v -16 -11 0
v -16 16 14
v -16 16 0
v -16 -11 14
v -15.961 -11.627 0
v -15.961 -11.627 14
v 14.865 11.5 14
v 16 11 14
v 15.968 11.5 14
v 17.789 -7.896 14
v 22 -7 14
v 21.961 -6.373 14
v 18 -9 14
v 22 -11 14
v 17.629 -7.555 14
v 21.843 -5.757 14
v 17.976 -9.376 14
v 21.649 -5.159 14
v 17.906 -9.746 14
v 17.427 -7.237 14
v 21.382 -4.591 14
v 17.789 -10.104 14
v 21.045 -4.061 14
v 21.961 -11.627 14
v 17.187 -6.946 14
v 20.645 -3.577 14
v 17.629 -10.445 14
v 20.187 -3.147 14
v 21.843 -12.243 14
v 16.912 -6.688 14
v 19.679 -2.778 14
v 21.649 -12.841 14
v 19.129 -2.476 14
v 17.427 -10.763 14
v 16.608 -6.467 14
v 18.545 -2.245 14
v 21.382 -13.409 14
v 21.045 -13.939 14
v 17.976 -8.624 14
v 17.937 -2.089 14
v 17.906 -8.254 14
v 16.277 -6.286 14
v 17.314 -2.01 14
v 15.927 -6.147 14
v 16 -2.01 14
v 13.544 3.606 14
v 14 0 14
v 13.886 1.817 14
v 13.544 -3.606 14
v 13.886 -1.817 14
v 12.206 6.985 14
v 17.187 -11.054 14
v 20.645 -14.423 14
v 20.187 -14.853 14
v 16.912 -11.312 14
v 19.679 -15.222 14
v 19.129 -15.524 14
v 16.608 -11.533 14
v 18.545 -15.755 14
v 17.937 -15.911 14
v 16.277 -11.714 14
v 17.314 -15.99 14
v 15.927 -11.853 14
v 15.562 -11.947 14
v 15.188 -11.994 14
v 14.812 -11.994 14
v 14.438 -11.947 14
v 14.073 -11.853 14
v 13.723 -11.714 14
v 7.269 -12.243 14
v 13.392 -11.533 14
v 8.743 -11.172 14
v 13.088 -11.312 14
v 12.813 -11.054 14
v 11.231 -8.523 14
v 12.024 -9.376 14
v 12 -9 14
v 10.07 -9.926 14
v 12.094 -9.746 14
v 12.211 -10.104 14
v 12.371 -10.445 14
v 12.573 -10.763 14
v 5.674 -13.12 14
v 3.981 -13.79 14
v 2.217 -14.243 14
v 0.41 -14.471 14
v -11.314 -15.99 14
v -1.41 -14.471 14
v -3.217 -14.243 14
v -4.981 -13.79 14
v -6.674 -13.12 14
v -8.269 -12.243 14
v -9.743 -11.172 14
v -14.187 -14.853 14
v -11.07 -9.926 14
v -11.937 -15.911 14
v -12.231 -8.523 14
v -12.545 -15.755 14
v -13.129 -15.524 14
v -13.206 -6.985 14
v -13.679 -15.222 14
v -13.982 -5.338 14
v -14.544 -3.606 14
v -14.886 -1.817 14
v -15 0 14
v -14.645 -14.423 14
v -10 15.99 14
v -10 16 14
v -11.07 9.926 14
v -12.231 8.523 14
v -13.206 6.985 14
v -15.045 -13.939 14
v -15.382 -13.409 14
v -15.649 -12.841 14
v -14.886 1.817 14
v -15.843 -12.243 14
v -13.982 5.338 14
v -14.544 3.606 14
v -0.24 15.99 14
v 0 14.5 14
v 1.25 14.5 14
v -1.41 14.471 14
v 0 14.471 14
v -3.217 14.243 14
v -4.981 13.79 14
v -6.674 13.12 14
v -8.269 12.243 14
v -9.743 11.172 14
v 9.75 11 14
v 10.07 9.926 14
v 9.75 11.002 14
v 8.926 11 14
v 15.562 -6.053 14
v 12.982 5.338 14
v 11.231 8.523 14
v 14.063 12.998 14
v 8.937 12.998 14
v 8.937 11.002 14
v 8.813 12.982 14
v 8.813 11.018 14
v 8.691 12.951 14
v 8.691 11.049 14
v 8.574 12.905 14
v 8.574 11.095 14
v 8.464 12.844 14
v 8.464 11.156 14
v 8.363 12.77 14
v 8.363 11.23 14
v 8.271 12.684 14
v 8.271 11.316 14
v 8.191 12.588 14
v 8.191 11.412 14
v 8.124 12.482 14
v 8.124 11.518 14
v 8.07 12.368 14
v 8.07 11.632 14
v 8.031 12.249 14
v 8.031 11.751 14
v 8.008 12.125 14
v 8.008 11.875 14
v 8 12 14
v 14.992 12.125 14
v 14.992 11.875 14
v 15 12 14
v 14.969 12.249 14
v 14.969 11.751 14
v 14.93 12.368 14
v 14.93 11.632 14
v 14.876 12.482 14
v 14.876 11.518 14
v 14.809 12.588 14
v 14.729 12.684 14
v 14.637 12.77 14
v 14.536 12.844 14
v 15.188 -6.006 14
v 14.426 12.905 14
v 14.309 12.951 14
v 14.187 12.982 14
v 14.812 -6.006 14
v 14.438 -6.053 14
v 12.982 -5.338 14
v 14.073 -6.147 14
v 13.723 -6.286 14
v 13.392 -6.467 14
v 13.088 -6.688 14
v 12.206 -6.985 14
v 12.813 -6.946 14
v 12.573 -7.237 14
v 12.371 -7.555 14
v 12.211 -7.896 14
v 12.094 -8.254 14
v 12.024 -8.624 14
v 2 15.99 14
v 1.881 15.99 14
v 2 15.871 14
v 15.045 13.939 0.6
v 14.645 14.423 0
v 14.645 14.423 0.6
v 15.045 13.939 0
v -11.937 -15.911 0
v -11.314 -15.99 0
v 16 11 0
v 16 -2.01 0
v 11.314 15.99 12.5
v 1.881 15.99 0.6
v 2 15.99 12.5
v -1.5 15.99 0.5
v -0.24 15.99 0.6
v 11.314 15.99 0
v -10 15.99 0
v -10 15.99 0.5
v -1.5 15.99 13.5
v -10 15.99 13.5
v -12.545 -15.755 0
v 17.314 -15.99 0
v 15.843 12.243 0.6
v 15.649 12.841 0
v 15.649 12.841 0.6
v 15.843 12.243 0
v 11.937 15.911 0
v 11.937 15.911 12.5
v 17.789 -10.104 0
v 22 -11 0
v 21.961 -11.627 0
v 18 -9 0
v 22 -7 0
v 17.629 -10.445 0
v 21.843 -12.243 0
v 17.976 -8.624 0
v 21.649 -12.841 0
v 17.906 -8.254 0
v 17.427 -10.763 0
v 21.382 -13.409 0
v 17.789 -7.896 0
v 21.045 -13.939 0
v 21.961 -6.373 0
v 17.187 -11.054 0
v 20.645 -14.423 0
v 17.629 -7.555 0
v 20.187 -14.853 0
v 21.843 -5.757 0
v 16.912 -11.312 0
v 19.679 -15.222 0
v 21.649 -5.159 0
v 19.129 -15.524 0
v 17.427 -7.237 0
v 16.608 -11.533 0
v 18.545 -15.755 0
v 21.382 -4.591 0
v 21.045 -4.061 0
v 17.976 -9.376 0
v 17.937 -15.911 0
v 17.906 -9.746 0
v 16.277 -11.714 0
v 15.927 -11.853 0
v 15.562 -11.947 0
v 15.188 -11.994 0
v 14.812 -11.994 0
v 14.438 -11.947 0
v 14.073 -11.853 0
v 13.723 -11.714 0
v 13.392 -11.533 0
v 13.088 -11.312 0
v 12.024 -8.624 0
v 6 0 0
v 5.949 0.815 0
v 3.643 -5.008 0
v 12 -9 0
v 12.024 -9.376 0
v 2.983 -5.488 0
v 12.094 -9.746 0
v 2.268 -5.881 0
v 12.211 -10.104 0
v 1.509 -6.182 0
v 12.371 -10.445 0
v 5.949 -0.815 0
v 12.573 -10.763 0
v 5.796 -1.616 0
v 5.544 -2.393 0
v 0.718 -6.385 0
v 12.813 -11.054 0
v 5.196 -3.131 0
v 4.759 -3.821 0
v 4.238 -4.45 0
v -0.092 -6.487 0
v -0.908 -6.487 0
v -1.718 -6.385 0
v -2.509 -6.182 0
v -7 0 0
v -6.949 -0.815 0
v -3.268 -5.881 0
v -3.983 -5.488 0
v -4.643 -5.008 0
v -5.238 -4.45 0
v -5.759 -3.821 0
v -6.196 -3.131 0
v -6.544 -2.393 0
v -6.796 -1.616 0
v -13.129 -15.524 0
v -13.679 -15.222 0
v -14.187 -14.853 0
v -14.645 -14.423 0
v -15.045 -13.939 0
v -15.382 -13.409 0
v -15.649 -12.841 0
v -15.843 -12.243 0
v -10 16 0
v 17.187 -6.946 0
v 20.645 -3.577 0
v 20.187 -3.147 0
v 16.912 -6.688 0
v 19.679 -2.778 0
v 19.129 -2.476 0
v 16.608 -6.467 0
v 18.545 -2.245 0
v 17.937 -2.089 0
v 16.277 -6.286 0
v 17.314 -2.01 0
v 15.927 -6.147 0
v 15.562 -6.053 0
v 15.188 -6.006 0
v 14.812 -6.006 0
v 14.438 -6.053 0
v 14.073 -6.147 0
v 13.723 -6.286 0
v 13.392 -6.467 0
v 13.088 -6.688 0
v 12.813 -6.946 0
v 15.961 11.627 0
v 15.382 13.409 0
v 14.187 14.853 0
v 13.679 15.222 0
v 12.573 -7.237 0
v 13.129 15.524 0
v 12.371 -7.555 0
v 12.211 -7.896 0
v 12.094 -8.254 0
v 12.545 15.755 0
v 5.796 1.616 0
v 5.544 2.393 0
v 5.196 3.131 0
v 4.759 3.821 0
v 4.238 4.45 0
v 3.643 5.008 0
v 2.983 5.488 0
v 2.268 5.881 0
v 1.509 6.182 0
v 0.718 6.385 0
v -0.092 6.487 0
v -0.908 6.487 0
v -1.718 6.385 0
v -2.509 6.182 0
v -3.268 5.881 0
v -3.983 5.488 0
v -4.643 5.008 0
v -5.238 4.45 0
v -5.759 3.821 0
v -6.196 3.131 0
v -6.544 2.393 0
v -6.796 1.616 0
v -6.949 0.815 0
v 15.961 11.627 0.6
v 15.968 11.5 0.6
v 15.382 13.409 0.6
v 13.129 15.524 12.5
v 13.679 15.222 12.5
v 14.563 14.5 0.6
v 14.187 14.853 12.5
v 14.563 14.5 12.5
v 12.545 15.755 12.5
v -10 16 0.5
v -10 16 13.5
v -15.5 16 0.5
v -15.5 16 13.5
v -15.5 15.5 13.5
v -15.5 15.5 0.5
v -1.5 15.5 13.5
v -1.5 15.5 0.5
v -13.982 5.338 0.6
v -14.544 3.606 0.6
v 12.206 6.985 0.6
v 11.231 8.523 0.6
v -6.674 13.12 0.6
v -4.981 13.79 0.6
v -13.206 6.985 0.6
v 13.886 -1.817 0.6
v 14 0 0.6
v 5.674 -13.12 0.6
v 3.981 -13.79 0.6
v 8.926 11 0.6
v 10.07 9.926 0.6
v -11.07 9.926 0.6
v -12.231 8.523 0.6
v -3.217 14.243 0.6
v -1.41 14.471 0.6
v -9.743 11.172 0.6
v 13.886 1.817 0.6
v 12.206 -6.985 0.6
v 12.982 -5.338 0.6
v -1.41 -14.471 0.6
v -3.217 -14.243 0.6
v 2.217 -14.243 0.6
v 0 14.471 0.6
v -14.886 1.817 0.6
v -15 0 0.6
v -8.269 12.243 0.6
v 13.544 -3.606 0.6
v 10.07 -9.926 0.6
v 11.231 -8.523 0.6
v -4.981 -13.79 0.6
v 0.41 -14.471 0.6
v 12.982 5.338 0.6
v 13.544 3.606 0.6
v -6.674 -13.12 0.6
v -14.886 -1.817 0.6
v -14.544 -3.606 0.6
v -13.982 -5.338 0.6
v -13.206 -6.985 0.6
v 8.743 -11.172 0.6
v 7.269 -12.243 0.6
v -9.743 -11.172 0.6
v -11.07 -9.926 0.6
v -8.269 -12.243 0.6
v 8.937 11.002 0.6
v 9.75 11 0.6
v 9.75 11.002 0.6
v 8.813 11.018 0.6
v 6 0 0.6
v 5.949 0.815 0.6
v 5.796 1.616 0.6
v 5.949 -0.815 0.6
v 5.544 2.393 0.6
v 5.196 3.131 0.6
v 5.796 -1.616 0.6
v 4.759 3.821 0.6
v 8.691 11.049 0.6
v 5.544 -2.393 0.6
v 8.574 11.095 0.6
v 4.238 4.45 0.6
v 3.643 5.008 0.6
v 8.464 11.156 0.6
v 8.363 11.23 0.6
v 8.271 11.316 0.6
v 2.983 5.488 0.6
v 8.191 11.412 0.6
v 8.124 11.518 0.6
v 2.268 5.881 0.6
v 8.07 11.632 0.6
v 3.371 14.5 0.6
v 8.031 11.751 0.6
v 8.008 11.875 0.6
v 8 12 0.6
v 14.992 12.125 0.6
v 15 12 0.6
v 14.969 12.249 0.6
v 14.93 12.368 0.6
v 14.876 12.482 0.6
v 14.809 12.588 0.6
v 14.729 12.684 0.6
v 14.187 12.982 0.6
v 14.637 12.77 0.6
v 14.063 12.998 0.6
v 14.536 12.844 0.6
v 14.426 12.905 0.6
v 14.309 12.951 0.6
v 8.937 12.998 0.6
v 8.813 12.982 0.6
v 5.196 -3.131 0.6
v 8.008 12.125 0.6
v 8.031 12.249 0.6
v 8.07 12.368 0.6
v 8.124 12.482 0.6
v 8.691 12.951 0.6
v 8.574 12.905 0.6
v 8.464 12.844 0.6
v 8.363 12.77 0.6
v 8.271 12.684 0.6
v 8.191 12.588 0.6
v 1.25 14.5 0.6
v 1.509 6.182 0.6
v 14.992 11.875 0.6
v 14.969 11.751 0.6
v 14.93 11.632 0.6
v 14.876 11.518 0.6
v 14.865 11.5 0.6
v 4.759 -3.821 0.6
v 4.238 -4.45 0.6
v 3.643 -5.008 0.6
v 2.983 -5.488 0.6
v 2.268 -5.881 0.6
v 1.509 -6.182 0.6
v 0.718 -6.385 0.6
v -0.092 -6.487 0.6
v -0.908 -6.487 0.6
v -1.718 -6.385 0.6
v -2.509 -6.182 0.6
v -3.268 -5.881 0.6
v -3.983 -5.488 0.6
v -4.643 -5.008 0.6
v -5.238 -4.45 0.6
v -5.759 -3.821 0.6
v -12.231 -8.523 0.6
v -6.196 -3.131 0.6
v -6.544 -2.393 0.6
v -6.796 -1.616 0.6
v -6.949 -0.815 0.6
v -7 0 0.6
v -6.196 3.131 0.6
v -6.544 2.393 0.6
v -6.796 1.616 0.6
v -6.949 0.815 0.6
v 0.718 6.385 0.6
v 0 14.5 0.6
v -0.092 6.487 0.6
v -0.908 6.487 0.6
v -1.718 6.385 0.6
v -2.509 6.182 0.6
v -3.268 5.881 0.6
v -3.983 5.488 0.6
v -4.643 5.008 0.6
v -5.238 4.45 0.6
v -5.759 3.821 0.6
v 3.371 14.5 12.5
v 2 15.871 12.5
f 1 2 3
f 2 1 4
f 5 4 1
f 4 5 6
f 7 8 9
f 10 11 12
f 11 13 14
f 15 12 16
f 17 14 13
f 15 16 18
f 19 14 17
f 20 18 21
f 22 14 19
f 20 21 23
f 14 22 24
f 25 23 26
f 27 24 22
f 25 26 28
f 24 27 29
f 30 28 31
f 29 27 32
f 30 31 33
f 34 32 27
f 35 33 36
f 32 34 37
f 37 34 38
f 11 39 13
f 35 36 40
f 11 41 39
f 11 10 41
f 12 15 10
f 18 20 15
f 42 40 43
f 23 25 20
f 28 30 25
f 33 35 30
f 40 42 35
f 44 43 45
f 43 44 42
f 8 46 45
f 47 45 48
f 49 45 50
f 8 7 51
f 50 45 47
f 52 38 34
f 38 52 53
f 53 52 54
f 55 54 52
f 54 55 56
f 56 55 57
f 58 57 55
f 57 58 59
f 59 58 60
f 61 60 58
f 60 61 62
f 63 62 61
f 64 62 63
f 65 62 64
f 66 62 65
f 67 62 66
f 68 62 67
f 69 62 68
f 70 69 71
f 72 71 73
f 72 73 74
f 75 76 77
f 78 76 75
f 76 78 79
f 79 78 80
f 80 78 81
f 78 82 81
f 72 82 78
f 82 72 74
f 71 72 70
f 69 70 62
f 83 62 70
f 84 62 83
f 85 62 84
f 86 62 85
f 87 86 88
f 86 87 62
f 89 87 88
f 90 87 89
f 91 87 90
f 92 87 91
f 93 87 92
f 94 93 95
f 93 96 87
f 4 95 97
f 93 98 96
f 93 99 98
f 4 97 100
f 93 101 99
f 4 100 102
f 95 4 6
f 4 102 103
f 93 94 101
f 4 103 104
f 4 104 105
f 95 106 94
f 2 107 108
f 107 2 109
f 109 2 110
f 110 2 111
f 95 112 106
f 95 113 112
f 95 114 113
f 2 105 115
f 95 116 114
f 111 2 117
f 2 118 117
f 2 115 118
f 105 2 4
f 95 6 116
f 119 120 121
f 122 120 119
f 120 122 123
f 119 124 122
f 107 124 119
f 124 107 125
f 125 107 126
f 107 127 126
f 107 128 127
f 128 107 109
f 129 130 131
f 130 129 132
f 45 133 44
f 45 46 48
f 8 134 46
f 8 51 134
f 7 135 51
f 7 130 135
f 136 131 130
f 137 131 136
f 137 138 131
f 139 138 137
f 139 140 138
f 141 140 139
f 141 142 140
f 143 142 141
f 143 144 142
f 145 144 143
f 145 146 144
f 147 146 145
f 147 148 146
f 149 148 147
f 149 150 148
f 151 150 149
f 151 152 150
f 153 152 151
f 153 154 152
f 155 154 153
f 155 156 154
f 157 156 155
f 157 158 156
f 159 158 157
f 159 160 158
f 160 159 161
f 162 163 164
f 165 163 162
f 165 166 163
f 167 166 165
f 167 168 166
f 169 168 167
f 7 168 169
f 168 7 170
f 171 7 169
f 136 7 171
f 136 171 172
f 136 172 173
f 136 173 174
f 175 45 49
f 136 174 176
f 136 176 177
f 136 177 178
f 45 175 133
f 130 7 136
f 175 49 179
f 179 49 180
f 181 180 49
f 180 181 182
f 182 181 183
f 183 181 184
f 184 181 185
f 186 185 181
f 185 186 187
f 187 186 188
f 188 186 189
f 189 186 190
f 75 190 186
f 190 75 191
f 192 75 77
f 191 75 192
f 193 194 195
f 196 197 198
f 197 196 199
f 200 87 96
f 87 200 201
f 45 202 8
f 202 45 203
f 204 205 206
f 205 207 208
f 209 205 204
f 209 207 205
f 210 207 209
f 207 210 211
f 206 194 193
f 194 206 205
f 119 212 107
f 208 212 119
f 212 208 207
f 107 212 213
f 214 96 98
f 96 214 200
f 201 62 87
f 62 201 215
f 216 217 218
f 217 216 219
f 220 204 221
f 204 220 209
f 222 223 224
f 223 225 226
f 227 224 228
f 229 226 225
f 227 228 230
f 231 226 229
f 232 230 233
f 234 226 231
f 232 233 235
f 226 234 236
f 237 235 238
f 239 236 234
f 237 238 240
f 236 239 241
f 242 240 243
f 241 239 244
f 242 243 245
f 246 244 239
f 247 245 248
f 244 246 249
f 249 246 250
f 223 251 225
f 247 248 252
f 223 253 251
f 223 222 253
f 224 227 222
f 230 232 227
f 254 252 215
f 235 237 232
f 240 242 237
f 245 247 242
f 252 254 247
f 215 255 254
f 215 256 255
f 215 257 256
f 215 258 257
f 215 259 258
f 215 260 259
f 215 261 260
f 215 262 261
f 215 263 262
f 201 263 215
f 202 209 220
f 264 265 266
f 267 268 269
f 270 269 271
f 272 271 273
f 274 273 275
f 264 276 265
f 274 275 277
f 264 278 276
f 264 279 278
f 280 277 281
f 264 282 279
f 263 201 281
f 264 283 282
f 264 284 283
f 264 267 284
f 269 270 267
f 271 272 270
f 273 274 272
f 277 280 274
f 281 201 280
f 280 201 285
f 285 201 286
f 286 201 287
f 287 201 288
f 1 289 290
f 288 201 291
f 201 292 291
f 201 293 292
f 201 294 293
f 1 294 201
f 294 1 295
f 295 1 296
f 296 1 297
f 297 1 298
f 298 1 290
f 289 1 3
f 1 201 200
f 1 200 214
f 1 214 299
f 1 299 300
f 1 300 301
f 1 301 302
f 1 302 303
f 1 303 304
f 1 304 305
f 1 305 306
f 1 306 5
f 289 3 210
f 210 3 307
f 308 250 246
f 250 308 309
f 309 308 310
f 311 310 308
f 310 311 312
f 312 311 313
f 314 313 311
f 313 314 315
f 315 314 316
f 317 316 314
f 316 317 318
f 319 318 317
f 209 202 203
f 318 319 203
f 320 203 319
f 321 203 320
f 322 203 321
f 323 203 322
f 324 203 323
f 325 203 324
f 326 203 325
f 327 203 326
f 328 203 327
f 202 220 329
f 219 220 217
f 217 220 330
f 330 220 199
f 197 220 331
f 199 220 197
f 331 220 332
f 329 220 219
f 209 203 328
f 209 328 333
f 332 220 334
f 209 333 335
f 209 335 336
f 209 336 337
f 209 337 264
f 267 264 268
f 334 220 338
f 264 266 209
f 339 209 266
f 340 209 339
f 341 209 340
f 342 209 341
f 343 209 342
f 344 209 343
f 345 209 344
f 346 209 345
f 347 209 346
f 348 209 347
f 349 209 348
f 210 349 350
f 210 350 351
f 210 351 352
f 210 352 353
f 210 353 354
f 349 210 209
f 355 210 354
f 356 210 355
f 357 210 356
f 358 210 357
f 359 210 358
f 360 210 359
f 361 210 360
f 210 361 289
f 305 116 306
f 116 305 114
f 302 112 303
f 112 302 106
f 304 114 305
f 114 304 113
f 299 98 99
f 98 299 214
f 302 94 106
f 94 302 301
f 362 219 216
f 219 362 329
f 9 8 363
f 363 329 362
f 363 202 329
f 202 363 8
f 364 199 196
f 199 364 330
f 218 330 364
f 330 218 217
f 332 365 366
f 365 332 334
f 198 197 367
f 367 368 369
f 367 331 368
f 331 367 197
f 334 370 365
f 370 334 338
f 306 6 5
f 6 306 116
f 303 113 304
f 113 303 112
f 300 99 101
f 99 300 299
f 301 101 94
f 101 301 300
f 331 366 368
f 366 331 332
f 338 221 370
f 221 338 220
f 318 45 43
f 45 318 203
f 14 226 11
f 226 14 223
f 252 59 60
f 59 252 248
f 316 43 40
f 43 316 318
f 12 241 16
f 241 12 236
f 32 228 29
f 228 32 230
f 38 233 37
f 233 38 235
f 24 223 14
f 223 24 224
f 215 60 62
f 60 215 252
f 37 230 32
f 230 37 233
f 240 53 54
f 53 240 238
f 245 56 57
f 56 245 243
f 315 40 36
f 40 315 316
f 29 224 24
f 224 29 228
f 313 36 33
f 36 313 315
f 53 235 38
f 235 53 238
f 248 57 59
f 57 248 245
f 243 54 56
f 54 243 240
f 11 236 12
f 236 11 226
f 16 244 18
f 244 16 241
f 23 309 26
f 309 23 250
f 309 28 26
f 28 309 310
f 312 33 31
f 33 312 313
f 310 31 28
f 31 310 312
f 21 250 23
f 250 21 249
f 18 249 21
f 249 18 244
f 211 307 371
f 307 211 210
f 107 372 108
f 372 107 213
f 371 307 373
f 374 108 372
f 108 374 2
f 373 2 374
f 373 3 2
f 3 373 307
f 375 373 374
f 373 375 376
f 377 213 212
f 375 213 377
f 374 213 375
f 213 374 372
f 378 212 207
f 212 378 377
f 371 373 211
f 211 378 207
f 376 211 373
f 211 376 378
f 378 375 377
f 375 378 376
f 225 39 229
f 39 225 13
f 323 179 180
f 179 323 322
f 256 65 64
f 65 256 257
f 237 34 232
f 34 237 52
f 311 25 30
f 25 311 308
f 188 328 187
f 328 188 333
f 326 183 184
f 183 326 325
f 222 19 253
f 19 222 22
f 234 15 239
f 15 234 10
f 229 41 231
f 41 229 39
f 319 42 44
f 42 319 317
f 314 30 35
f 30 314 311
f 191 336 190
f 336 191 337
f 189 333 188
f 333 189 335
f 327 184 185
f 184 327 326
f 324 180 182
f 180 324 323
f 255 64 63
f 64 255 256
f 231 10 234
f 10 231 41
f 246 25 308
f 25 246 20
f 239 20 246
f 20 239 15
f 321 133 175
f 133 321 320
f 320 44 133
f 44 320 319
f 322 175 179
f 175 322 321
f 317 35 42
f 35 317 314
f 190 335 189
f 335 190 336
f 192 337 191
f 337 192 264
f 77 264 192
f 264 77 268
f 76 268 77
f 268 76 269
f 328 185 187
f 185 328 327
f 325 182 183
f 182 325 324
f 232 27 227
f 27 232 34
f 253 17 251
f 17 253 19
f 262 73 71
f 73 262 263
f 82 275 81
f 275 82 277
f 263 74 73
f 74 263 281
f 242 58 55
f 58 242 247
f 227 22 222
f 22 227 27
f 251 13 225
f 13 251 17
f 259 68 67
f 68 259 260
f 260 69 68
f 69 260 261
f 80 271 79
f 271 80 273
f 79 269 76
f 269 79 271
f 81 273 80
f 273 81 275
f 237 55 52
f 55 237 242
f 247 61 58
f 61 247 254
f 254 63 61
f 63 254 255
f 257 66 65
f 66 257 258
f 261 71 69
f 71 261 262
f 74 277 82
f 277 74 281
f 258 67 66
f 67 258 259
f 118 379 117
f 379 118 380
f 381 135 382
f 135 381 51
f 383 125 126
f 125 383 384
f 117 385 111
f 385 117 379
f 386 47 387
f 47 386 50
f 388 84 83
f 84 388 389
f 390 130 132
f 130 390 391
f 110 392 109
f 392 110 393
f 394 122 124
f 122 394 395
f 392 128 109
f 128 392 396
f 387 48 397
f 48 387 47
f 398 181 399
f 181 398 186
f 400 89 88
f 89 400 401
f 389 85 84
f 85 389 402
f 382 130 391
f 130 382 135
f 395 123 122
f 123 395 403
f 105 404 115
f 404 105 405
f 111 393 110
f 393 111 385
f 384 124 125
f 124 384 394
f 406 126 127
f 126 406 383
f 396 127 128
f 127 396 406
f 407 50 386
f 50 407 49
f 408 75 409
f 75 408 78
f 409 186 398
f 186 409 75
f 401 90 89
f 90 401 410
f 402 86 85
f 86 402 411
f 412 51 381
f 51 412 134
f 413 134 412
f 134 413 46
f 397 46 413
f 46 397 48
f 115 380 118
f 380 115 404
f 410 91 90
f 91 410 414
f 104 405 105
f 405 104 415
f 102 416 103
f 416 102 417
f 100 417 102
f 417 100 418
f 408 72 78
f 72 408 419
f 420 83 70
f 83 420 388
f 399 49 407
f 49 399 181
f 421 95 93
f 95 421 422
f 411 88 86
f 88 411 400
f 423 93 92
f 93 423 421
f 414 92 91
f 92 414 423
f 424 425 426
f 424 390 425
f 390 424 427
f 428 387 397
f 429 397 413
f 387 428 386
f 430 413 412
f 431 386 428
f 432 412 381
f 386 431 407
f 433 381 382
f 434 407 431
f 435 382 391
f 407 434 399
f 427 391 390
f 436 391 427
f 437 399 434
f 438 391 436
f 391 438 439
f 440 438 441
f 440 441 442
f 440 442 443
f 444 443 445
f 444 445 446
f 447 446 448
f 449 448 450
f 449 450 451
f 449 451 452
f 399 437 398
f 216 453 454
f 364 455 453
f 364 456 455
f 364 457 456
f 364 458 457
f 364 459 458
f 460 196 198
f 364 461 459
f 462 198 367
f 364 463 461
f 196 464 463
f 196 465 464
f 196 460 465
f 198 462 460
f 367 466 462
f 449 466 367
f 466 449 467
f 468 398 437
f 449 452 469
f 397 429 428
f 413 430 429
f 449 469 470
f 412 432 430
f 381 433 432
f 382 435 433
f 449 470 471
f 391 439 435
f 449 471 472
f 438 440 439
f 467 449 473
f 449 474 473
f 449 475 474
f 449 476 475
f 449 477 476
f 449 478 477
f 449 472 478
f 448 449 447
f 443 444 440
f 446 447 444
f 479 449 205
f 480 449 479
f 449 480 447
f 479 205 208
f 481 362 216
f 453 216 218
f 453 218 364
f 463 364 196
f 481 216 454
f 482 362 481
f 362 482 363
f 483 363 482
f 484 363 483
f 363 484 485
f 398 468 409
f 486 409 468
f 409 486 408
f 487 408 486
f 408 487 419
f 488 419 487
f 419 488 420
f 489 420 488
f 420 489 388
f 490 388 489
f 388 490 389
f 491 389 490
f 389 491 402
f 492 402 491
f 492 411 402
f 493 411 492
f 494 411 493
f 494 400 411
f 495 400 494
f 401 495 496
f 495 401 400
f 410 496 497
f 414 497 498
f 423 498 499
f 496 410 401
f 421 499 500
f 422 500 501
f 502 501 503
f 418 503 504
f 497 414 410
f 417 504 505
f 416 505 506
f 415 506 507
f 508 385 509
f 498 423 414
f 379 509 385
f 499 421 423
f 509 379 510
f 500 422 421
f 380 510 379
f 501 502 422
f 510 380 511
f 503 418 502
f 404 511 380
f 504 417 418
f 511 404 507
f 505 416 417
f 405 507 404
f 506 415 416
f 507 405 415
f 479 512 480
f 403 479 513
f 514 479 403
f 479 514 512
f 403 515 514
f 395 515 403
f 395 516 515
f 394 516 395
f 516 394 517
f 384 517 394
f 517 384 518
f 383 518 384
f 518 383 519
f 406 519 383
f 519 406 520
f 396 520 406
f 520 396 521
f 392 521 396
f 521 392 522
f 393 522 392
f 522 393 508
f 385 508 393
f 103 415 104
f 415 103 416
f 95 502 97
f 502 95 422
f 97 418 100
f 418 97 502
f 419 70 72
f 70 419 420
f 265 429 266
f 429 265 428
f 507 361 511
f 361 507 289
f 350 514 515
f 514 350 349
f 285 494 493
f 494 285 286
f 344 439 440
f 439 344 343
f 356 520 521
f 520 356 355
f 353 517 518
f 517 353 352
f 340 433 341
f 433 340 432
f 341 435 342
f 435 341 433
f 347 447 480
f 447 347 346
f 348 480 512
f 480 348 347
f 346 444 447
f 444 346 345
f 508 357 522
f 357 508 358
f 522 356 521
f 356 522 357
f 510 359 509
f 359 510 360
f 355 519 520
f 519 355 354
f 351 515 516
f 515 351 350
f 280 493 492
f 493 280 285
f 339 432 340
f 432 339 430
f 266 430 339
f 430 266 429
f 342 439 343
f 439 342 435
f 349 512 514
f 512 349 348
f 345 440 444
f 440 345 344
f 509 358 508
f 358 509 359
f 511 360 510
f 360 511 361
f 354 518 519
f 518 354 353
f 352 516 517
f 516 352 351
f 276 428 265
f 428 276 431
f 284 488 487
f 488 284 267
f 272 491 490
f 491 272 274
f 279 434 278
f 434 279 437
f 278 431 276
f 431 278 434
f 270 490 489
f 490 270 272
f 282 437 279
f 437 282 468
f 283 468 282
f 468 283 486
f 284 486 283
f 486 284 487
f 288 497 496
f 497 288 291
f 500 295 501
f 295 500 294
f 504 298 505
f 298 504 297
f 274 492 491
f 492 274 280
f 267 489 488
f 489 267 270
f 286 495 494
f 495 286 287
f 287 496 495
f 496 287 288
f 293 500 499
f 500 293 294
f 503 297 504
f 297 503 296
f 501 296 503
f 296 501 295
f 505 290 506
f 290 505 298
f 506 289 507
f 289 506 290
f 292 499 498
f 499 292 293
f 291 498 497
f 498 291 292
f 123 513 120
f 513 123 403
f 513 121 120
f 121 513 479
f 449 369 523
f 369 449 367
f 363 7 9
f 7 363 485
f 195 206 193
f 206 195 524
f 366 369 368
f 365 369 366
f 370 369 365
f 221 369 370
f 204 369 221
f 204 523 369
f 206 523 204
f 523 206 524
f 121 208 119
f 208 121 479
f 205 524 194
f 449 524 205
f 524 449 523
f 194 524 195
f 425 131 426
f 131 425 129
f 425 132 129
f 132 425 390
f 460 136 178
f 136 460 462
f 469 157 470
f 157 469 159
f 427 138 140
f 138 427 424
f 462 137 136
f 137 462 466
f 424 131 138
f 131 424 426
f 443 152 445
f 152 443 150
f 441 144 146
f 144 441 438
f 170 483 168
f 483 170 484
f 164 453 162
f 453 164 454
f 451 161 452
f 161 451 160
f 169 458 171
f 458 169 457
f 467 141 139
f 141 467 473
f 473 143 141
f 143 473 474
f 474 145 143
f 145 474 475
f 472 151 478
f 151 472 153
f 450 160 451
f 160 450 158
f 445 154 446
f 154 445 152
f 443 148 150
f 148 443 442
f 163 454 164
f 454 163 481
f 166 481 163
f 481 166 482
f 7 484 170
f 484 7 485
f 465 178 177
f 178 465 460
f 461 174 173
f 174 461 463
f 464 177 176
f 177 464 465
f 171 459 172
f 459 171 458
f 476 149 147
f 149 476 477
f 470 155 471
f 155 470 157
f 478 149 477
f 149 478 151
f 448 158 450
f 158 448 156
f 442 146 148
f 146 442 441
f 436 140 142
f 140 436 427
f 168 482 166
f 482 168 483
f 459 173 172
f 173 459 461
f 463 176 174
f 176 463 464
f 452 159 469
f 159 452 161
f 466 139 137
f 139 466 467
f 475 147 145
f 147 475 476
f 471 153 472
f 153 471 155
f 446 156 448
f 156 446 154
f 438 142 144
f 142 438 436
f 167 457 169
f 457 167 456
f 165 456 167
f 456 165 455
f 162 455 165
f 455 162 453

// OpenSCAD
$fn = 50;


union() {
	difference() {
		union() {
			translate(v = [0, 0, 0]) {
				rotate(a = [0, 0, 0]) {
					hull() {
						translate(v = [-11.0000000000, 11.0000000000, 0]) {
							rotate(a = [0, 0, 0]) {
								translate(v = [0, 0, 0]) {
									rotate(a = [0, 0, 0]) {
										cylinder(h = 14, r = 5);
									}
								}
							}
						}
						translate(v = [11.0000000000, 11.0000000000, 0]) {
							rotate(a = [0, 0, 0]) {
								translate(v = [0, 0, 0]) {
									rotate(a = [0, 0, 0]) {
										cylinder(h = 14, r = 5);
									}
								}
							}
						}
						translate(v = [-11.0000000000, -11.0000000000, 0]) {
							rotate(a = [0, 0, 0]) {
								translate(v = [0, 0, 0]) {
									rotate(a = [0, 0, 0]) {
										cylinder(h = 14, r = 5);
									}
								}
							}
						}
						translate(v = [11.0000000000, -11.0000000000, 0]) {
							rotate(a = [0, 0, 0]) {
								translate(v = [0, 0, 0]) {
									rotate(a = [0, 0, 0]) {
										cylinder(h = 14, r = 5);
									}
								}
							}
						}
					}
				}
			}
			translate(v = [7.5000000000, -9.0000000000, 0]) {
				rotate(a = [0, 0, 0]) {
					hull() {
						translate(v = [-9.5000000000, 2.0000000000, 0]) {
							rotate(a = [0, 0, 0]) {
								translate(v = [0, 0, 0]) {
									rotate(a = [0, 0, 0]) {
										cylinder(h = 14, r = 5);
									}
								}
							}
						}
						translate(v = [9.5000000000, 2.0000000000, 0]) {
							rotate(a = [0, 0, 0]) {
								translate(v = [0, 0, 0]) {
									rotate(a = [0, 0, 0]) {
										cylinder(h = 14, r = 5);
									}
								}
							}
						}
						translate(v = [-9.5000000000, -2.0000000000, 0]) {
							rotate(a = [0, 0, 0]) {
								translate(v = [0, 0, 0]) {
									rotate(a = [0, 0, 0]) {
										cylinder(h = 14, r = 5);
									}
								}
							}
						}
						translate(v = [9.5000000000, -2.0000000000, 0]) {
							rotate(a = [0, 0, 0]) {
								translate(v = [0, 0, 0]) {
									rotate(a = [0, 0, 0]) {
										cylinder(h = 14, r = 5);
									}
								}
							}
						}
					}
				}
			}
			translate(v = [-16.0000000000, 10.0000000000, 0]) {
				rotate(a = [0, 0, 0]) {
					cube(size = [6, 6, 14]);
				}
			}
		}
		union() {
			translate(v = [-15.5000000000, 15.5000000000, 0.5000000000]) {
				rotate(a = [0, 0, 0]) {
					cube(size = [14, 0.5000000000, 13.0000000000]);
				}
			}
			translate(v = [15.0000000000, -9.0000000000, -125.0000000000]) {
				rotate(a = [0, 0, 0]) {
					cylinder(h = 250, r = 3.0000000000);
				}
			}
			translate(v = [-0.5000000000, 0.0000000000, 0.6000000000]) {
				rotate(a = [0, 0, 0]) {
					cylinder(h = 16.4000000000, r = 14.5000000000);
				}
			}
			translate(v = [-0.5000000000, 0.0000000000, -7.0000000000]) {
				rotate(a = [0, 0, 0]) {
					cylinder(h = 14, r = 6.5000000000);
				}
			}
			translate(v = [0.0000000000, 11.5000000000, 0.6000000000]) {
				rotate(a = [0, 0, 0]) {
					cube(size = [16.0000000000, 3, 16.4000000000]);
				}
			}
			translate(v = [2.0000000000, 11.5000000000, 12.5000000000]) {
				rotate(a = [0, 0, 0]) {
					cube(size = [14.0000000000, 6, 1.5000000000]);
				}
			}
			translate(v = [-3.0000000000, 18.7500000000, 0.6000000000]) {
				rotate(a = [0, 0, -45]) {
					cube(size = [10, 1.5000000000, 16.4000000000]);
				}
			}
			translate(v = [2.2500000000, 11.0000000000, 0.6000000000]) {
				rotate(a = [0, 0, 0]) {
					cube(size = [7.5000000000, 2, 13.4000000000]);
				}
			}
		}
	}
	union() {
		translate(v = [11.5000000000, 12, 0]) {
			rotate(a = [0, 0, 0]) {
				hull() {
					translate(v = [2.5000000000, 0, 0]) {
						rotate(a = [0, 0, 0]) {
							translate(v = [0, 0, 0]) {
								rotate(a = [0, 0, 0]) {
									cylinder(h = 14, r = 1.0000000000);
								}
							}
						}
					}
					translate(v = [-2.5000000000, 0, 0]) {
						rotate(a = [0, 0, 0]) {
							translate(v = [0, 0, 0]) {
								rotate(a = [0, 0, 0]) {
									cylinder(h = 14, r = 1.0000000000);
								}
							}
						}
					}
				}
			}
		}
	}
}
